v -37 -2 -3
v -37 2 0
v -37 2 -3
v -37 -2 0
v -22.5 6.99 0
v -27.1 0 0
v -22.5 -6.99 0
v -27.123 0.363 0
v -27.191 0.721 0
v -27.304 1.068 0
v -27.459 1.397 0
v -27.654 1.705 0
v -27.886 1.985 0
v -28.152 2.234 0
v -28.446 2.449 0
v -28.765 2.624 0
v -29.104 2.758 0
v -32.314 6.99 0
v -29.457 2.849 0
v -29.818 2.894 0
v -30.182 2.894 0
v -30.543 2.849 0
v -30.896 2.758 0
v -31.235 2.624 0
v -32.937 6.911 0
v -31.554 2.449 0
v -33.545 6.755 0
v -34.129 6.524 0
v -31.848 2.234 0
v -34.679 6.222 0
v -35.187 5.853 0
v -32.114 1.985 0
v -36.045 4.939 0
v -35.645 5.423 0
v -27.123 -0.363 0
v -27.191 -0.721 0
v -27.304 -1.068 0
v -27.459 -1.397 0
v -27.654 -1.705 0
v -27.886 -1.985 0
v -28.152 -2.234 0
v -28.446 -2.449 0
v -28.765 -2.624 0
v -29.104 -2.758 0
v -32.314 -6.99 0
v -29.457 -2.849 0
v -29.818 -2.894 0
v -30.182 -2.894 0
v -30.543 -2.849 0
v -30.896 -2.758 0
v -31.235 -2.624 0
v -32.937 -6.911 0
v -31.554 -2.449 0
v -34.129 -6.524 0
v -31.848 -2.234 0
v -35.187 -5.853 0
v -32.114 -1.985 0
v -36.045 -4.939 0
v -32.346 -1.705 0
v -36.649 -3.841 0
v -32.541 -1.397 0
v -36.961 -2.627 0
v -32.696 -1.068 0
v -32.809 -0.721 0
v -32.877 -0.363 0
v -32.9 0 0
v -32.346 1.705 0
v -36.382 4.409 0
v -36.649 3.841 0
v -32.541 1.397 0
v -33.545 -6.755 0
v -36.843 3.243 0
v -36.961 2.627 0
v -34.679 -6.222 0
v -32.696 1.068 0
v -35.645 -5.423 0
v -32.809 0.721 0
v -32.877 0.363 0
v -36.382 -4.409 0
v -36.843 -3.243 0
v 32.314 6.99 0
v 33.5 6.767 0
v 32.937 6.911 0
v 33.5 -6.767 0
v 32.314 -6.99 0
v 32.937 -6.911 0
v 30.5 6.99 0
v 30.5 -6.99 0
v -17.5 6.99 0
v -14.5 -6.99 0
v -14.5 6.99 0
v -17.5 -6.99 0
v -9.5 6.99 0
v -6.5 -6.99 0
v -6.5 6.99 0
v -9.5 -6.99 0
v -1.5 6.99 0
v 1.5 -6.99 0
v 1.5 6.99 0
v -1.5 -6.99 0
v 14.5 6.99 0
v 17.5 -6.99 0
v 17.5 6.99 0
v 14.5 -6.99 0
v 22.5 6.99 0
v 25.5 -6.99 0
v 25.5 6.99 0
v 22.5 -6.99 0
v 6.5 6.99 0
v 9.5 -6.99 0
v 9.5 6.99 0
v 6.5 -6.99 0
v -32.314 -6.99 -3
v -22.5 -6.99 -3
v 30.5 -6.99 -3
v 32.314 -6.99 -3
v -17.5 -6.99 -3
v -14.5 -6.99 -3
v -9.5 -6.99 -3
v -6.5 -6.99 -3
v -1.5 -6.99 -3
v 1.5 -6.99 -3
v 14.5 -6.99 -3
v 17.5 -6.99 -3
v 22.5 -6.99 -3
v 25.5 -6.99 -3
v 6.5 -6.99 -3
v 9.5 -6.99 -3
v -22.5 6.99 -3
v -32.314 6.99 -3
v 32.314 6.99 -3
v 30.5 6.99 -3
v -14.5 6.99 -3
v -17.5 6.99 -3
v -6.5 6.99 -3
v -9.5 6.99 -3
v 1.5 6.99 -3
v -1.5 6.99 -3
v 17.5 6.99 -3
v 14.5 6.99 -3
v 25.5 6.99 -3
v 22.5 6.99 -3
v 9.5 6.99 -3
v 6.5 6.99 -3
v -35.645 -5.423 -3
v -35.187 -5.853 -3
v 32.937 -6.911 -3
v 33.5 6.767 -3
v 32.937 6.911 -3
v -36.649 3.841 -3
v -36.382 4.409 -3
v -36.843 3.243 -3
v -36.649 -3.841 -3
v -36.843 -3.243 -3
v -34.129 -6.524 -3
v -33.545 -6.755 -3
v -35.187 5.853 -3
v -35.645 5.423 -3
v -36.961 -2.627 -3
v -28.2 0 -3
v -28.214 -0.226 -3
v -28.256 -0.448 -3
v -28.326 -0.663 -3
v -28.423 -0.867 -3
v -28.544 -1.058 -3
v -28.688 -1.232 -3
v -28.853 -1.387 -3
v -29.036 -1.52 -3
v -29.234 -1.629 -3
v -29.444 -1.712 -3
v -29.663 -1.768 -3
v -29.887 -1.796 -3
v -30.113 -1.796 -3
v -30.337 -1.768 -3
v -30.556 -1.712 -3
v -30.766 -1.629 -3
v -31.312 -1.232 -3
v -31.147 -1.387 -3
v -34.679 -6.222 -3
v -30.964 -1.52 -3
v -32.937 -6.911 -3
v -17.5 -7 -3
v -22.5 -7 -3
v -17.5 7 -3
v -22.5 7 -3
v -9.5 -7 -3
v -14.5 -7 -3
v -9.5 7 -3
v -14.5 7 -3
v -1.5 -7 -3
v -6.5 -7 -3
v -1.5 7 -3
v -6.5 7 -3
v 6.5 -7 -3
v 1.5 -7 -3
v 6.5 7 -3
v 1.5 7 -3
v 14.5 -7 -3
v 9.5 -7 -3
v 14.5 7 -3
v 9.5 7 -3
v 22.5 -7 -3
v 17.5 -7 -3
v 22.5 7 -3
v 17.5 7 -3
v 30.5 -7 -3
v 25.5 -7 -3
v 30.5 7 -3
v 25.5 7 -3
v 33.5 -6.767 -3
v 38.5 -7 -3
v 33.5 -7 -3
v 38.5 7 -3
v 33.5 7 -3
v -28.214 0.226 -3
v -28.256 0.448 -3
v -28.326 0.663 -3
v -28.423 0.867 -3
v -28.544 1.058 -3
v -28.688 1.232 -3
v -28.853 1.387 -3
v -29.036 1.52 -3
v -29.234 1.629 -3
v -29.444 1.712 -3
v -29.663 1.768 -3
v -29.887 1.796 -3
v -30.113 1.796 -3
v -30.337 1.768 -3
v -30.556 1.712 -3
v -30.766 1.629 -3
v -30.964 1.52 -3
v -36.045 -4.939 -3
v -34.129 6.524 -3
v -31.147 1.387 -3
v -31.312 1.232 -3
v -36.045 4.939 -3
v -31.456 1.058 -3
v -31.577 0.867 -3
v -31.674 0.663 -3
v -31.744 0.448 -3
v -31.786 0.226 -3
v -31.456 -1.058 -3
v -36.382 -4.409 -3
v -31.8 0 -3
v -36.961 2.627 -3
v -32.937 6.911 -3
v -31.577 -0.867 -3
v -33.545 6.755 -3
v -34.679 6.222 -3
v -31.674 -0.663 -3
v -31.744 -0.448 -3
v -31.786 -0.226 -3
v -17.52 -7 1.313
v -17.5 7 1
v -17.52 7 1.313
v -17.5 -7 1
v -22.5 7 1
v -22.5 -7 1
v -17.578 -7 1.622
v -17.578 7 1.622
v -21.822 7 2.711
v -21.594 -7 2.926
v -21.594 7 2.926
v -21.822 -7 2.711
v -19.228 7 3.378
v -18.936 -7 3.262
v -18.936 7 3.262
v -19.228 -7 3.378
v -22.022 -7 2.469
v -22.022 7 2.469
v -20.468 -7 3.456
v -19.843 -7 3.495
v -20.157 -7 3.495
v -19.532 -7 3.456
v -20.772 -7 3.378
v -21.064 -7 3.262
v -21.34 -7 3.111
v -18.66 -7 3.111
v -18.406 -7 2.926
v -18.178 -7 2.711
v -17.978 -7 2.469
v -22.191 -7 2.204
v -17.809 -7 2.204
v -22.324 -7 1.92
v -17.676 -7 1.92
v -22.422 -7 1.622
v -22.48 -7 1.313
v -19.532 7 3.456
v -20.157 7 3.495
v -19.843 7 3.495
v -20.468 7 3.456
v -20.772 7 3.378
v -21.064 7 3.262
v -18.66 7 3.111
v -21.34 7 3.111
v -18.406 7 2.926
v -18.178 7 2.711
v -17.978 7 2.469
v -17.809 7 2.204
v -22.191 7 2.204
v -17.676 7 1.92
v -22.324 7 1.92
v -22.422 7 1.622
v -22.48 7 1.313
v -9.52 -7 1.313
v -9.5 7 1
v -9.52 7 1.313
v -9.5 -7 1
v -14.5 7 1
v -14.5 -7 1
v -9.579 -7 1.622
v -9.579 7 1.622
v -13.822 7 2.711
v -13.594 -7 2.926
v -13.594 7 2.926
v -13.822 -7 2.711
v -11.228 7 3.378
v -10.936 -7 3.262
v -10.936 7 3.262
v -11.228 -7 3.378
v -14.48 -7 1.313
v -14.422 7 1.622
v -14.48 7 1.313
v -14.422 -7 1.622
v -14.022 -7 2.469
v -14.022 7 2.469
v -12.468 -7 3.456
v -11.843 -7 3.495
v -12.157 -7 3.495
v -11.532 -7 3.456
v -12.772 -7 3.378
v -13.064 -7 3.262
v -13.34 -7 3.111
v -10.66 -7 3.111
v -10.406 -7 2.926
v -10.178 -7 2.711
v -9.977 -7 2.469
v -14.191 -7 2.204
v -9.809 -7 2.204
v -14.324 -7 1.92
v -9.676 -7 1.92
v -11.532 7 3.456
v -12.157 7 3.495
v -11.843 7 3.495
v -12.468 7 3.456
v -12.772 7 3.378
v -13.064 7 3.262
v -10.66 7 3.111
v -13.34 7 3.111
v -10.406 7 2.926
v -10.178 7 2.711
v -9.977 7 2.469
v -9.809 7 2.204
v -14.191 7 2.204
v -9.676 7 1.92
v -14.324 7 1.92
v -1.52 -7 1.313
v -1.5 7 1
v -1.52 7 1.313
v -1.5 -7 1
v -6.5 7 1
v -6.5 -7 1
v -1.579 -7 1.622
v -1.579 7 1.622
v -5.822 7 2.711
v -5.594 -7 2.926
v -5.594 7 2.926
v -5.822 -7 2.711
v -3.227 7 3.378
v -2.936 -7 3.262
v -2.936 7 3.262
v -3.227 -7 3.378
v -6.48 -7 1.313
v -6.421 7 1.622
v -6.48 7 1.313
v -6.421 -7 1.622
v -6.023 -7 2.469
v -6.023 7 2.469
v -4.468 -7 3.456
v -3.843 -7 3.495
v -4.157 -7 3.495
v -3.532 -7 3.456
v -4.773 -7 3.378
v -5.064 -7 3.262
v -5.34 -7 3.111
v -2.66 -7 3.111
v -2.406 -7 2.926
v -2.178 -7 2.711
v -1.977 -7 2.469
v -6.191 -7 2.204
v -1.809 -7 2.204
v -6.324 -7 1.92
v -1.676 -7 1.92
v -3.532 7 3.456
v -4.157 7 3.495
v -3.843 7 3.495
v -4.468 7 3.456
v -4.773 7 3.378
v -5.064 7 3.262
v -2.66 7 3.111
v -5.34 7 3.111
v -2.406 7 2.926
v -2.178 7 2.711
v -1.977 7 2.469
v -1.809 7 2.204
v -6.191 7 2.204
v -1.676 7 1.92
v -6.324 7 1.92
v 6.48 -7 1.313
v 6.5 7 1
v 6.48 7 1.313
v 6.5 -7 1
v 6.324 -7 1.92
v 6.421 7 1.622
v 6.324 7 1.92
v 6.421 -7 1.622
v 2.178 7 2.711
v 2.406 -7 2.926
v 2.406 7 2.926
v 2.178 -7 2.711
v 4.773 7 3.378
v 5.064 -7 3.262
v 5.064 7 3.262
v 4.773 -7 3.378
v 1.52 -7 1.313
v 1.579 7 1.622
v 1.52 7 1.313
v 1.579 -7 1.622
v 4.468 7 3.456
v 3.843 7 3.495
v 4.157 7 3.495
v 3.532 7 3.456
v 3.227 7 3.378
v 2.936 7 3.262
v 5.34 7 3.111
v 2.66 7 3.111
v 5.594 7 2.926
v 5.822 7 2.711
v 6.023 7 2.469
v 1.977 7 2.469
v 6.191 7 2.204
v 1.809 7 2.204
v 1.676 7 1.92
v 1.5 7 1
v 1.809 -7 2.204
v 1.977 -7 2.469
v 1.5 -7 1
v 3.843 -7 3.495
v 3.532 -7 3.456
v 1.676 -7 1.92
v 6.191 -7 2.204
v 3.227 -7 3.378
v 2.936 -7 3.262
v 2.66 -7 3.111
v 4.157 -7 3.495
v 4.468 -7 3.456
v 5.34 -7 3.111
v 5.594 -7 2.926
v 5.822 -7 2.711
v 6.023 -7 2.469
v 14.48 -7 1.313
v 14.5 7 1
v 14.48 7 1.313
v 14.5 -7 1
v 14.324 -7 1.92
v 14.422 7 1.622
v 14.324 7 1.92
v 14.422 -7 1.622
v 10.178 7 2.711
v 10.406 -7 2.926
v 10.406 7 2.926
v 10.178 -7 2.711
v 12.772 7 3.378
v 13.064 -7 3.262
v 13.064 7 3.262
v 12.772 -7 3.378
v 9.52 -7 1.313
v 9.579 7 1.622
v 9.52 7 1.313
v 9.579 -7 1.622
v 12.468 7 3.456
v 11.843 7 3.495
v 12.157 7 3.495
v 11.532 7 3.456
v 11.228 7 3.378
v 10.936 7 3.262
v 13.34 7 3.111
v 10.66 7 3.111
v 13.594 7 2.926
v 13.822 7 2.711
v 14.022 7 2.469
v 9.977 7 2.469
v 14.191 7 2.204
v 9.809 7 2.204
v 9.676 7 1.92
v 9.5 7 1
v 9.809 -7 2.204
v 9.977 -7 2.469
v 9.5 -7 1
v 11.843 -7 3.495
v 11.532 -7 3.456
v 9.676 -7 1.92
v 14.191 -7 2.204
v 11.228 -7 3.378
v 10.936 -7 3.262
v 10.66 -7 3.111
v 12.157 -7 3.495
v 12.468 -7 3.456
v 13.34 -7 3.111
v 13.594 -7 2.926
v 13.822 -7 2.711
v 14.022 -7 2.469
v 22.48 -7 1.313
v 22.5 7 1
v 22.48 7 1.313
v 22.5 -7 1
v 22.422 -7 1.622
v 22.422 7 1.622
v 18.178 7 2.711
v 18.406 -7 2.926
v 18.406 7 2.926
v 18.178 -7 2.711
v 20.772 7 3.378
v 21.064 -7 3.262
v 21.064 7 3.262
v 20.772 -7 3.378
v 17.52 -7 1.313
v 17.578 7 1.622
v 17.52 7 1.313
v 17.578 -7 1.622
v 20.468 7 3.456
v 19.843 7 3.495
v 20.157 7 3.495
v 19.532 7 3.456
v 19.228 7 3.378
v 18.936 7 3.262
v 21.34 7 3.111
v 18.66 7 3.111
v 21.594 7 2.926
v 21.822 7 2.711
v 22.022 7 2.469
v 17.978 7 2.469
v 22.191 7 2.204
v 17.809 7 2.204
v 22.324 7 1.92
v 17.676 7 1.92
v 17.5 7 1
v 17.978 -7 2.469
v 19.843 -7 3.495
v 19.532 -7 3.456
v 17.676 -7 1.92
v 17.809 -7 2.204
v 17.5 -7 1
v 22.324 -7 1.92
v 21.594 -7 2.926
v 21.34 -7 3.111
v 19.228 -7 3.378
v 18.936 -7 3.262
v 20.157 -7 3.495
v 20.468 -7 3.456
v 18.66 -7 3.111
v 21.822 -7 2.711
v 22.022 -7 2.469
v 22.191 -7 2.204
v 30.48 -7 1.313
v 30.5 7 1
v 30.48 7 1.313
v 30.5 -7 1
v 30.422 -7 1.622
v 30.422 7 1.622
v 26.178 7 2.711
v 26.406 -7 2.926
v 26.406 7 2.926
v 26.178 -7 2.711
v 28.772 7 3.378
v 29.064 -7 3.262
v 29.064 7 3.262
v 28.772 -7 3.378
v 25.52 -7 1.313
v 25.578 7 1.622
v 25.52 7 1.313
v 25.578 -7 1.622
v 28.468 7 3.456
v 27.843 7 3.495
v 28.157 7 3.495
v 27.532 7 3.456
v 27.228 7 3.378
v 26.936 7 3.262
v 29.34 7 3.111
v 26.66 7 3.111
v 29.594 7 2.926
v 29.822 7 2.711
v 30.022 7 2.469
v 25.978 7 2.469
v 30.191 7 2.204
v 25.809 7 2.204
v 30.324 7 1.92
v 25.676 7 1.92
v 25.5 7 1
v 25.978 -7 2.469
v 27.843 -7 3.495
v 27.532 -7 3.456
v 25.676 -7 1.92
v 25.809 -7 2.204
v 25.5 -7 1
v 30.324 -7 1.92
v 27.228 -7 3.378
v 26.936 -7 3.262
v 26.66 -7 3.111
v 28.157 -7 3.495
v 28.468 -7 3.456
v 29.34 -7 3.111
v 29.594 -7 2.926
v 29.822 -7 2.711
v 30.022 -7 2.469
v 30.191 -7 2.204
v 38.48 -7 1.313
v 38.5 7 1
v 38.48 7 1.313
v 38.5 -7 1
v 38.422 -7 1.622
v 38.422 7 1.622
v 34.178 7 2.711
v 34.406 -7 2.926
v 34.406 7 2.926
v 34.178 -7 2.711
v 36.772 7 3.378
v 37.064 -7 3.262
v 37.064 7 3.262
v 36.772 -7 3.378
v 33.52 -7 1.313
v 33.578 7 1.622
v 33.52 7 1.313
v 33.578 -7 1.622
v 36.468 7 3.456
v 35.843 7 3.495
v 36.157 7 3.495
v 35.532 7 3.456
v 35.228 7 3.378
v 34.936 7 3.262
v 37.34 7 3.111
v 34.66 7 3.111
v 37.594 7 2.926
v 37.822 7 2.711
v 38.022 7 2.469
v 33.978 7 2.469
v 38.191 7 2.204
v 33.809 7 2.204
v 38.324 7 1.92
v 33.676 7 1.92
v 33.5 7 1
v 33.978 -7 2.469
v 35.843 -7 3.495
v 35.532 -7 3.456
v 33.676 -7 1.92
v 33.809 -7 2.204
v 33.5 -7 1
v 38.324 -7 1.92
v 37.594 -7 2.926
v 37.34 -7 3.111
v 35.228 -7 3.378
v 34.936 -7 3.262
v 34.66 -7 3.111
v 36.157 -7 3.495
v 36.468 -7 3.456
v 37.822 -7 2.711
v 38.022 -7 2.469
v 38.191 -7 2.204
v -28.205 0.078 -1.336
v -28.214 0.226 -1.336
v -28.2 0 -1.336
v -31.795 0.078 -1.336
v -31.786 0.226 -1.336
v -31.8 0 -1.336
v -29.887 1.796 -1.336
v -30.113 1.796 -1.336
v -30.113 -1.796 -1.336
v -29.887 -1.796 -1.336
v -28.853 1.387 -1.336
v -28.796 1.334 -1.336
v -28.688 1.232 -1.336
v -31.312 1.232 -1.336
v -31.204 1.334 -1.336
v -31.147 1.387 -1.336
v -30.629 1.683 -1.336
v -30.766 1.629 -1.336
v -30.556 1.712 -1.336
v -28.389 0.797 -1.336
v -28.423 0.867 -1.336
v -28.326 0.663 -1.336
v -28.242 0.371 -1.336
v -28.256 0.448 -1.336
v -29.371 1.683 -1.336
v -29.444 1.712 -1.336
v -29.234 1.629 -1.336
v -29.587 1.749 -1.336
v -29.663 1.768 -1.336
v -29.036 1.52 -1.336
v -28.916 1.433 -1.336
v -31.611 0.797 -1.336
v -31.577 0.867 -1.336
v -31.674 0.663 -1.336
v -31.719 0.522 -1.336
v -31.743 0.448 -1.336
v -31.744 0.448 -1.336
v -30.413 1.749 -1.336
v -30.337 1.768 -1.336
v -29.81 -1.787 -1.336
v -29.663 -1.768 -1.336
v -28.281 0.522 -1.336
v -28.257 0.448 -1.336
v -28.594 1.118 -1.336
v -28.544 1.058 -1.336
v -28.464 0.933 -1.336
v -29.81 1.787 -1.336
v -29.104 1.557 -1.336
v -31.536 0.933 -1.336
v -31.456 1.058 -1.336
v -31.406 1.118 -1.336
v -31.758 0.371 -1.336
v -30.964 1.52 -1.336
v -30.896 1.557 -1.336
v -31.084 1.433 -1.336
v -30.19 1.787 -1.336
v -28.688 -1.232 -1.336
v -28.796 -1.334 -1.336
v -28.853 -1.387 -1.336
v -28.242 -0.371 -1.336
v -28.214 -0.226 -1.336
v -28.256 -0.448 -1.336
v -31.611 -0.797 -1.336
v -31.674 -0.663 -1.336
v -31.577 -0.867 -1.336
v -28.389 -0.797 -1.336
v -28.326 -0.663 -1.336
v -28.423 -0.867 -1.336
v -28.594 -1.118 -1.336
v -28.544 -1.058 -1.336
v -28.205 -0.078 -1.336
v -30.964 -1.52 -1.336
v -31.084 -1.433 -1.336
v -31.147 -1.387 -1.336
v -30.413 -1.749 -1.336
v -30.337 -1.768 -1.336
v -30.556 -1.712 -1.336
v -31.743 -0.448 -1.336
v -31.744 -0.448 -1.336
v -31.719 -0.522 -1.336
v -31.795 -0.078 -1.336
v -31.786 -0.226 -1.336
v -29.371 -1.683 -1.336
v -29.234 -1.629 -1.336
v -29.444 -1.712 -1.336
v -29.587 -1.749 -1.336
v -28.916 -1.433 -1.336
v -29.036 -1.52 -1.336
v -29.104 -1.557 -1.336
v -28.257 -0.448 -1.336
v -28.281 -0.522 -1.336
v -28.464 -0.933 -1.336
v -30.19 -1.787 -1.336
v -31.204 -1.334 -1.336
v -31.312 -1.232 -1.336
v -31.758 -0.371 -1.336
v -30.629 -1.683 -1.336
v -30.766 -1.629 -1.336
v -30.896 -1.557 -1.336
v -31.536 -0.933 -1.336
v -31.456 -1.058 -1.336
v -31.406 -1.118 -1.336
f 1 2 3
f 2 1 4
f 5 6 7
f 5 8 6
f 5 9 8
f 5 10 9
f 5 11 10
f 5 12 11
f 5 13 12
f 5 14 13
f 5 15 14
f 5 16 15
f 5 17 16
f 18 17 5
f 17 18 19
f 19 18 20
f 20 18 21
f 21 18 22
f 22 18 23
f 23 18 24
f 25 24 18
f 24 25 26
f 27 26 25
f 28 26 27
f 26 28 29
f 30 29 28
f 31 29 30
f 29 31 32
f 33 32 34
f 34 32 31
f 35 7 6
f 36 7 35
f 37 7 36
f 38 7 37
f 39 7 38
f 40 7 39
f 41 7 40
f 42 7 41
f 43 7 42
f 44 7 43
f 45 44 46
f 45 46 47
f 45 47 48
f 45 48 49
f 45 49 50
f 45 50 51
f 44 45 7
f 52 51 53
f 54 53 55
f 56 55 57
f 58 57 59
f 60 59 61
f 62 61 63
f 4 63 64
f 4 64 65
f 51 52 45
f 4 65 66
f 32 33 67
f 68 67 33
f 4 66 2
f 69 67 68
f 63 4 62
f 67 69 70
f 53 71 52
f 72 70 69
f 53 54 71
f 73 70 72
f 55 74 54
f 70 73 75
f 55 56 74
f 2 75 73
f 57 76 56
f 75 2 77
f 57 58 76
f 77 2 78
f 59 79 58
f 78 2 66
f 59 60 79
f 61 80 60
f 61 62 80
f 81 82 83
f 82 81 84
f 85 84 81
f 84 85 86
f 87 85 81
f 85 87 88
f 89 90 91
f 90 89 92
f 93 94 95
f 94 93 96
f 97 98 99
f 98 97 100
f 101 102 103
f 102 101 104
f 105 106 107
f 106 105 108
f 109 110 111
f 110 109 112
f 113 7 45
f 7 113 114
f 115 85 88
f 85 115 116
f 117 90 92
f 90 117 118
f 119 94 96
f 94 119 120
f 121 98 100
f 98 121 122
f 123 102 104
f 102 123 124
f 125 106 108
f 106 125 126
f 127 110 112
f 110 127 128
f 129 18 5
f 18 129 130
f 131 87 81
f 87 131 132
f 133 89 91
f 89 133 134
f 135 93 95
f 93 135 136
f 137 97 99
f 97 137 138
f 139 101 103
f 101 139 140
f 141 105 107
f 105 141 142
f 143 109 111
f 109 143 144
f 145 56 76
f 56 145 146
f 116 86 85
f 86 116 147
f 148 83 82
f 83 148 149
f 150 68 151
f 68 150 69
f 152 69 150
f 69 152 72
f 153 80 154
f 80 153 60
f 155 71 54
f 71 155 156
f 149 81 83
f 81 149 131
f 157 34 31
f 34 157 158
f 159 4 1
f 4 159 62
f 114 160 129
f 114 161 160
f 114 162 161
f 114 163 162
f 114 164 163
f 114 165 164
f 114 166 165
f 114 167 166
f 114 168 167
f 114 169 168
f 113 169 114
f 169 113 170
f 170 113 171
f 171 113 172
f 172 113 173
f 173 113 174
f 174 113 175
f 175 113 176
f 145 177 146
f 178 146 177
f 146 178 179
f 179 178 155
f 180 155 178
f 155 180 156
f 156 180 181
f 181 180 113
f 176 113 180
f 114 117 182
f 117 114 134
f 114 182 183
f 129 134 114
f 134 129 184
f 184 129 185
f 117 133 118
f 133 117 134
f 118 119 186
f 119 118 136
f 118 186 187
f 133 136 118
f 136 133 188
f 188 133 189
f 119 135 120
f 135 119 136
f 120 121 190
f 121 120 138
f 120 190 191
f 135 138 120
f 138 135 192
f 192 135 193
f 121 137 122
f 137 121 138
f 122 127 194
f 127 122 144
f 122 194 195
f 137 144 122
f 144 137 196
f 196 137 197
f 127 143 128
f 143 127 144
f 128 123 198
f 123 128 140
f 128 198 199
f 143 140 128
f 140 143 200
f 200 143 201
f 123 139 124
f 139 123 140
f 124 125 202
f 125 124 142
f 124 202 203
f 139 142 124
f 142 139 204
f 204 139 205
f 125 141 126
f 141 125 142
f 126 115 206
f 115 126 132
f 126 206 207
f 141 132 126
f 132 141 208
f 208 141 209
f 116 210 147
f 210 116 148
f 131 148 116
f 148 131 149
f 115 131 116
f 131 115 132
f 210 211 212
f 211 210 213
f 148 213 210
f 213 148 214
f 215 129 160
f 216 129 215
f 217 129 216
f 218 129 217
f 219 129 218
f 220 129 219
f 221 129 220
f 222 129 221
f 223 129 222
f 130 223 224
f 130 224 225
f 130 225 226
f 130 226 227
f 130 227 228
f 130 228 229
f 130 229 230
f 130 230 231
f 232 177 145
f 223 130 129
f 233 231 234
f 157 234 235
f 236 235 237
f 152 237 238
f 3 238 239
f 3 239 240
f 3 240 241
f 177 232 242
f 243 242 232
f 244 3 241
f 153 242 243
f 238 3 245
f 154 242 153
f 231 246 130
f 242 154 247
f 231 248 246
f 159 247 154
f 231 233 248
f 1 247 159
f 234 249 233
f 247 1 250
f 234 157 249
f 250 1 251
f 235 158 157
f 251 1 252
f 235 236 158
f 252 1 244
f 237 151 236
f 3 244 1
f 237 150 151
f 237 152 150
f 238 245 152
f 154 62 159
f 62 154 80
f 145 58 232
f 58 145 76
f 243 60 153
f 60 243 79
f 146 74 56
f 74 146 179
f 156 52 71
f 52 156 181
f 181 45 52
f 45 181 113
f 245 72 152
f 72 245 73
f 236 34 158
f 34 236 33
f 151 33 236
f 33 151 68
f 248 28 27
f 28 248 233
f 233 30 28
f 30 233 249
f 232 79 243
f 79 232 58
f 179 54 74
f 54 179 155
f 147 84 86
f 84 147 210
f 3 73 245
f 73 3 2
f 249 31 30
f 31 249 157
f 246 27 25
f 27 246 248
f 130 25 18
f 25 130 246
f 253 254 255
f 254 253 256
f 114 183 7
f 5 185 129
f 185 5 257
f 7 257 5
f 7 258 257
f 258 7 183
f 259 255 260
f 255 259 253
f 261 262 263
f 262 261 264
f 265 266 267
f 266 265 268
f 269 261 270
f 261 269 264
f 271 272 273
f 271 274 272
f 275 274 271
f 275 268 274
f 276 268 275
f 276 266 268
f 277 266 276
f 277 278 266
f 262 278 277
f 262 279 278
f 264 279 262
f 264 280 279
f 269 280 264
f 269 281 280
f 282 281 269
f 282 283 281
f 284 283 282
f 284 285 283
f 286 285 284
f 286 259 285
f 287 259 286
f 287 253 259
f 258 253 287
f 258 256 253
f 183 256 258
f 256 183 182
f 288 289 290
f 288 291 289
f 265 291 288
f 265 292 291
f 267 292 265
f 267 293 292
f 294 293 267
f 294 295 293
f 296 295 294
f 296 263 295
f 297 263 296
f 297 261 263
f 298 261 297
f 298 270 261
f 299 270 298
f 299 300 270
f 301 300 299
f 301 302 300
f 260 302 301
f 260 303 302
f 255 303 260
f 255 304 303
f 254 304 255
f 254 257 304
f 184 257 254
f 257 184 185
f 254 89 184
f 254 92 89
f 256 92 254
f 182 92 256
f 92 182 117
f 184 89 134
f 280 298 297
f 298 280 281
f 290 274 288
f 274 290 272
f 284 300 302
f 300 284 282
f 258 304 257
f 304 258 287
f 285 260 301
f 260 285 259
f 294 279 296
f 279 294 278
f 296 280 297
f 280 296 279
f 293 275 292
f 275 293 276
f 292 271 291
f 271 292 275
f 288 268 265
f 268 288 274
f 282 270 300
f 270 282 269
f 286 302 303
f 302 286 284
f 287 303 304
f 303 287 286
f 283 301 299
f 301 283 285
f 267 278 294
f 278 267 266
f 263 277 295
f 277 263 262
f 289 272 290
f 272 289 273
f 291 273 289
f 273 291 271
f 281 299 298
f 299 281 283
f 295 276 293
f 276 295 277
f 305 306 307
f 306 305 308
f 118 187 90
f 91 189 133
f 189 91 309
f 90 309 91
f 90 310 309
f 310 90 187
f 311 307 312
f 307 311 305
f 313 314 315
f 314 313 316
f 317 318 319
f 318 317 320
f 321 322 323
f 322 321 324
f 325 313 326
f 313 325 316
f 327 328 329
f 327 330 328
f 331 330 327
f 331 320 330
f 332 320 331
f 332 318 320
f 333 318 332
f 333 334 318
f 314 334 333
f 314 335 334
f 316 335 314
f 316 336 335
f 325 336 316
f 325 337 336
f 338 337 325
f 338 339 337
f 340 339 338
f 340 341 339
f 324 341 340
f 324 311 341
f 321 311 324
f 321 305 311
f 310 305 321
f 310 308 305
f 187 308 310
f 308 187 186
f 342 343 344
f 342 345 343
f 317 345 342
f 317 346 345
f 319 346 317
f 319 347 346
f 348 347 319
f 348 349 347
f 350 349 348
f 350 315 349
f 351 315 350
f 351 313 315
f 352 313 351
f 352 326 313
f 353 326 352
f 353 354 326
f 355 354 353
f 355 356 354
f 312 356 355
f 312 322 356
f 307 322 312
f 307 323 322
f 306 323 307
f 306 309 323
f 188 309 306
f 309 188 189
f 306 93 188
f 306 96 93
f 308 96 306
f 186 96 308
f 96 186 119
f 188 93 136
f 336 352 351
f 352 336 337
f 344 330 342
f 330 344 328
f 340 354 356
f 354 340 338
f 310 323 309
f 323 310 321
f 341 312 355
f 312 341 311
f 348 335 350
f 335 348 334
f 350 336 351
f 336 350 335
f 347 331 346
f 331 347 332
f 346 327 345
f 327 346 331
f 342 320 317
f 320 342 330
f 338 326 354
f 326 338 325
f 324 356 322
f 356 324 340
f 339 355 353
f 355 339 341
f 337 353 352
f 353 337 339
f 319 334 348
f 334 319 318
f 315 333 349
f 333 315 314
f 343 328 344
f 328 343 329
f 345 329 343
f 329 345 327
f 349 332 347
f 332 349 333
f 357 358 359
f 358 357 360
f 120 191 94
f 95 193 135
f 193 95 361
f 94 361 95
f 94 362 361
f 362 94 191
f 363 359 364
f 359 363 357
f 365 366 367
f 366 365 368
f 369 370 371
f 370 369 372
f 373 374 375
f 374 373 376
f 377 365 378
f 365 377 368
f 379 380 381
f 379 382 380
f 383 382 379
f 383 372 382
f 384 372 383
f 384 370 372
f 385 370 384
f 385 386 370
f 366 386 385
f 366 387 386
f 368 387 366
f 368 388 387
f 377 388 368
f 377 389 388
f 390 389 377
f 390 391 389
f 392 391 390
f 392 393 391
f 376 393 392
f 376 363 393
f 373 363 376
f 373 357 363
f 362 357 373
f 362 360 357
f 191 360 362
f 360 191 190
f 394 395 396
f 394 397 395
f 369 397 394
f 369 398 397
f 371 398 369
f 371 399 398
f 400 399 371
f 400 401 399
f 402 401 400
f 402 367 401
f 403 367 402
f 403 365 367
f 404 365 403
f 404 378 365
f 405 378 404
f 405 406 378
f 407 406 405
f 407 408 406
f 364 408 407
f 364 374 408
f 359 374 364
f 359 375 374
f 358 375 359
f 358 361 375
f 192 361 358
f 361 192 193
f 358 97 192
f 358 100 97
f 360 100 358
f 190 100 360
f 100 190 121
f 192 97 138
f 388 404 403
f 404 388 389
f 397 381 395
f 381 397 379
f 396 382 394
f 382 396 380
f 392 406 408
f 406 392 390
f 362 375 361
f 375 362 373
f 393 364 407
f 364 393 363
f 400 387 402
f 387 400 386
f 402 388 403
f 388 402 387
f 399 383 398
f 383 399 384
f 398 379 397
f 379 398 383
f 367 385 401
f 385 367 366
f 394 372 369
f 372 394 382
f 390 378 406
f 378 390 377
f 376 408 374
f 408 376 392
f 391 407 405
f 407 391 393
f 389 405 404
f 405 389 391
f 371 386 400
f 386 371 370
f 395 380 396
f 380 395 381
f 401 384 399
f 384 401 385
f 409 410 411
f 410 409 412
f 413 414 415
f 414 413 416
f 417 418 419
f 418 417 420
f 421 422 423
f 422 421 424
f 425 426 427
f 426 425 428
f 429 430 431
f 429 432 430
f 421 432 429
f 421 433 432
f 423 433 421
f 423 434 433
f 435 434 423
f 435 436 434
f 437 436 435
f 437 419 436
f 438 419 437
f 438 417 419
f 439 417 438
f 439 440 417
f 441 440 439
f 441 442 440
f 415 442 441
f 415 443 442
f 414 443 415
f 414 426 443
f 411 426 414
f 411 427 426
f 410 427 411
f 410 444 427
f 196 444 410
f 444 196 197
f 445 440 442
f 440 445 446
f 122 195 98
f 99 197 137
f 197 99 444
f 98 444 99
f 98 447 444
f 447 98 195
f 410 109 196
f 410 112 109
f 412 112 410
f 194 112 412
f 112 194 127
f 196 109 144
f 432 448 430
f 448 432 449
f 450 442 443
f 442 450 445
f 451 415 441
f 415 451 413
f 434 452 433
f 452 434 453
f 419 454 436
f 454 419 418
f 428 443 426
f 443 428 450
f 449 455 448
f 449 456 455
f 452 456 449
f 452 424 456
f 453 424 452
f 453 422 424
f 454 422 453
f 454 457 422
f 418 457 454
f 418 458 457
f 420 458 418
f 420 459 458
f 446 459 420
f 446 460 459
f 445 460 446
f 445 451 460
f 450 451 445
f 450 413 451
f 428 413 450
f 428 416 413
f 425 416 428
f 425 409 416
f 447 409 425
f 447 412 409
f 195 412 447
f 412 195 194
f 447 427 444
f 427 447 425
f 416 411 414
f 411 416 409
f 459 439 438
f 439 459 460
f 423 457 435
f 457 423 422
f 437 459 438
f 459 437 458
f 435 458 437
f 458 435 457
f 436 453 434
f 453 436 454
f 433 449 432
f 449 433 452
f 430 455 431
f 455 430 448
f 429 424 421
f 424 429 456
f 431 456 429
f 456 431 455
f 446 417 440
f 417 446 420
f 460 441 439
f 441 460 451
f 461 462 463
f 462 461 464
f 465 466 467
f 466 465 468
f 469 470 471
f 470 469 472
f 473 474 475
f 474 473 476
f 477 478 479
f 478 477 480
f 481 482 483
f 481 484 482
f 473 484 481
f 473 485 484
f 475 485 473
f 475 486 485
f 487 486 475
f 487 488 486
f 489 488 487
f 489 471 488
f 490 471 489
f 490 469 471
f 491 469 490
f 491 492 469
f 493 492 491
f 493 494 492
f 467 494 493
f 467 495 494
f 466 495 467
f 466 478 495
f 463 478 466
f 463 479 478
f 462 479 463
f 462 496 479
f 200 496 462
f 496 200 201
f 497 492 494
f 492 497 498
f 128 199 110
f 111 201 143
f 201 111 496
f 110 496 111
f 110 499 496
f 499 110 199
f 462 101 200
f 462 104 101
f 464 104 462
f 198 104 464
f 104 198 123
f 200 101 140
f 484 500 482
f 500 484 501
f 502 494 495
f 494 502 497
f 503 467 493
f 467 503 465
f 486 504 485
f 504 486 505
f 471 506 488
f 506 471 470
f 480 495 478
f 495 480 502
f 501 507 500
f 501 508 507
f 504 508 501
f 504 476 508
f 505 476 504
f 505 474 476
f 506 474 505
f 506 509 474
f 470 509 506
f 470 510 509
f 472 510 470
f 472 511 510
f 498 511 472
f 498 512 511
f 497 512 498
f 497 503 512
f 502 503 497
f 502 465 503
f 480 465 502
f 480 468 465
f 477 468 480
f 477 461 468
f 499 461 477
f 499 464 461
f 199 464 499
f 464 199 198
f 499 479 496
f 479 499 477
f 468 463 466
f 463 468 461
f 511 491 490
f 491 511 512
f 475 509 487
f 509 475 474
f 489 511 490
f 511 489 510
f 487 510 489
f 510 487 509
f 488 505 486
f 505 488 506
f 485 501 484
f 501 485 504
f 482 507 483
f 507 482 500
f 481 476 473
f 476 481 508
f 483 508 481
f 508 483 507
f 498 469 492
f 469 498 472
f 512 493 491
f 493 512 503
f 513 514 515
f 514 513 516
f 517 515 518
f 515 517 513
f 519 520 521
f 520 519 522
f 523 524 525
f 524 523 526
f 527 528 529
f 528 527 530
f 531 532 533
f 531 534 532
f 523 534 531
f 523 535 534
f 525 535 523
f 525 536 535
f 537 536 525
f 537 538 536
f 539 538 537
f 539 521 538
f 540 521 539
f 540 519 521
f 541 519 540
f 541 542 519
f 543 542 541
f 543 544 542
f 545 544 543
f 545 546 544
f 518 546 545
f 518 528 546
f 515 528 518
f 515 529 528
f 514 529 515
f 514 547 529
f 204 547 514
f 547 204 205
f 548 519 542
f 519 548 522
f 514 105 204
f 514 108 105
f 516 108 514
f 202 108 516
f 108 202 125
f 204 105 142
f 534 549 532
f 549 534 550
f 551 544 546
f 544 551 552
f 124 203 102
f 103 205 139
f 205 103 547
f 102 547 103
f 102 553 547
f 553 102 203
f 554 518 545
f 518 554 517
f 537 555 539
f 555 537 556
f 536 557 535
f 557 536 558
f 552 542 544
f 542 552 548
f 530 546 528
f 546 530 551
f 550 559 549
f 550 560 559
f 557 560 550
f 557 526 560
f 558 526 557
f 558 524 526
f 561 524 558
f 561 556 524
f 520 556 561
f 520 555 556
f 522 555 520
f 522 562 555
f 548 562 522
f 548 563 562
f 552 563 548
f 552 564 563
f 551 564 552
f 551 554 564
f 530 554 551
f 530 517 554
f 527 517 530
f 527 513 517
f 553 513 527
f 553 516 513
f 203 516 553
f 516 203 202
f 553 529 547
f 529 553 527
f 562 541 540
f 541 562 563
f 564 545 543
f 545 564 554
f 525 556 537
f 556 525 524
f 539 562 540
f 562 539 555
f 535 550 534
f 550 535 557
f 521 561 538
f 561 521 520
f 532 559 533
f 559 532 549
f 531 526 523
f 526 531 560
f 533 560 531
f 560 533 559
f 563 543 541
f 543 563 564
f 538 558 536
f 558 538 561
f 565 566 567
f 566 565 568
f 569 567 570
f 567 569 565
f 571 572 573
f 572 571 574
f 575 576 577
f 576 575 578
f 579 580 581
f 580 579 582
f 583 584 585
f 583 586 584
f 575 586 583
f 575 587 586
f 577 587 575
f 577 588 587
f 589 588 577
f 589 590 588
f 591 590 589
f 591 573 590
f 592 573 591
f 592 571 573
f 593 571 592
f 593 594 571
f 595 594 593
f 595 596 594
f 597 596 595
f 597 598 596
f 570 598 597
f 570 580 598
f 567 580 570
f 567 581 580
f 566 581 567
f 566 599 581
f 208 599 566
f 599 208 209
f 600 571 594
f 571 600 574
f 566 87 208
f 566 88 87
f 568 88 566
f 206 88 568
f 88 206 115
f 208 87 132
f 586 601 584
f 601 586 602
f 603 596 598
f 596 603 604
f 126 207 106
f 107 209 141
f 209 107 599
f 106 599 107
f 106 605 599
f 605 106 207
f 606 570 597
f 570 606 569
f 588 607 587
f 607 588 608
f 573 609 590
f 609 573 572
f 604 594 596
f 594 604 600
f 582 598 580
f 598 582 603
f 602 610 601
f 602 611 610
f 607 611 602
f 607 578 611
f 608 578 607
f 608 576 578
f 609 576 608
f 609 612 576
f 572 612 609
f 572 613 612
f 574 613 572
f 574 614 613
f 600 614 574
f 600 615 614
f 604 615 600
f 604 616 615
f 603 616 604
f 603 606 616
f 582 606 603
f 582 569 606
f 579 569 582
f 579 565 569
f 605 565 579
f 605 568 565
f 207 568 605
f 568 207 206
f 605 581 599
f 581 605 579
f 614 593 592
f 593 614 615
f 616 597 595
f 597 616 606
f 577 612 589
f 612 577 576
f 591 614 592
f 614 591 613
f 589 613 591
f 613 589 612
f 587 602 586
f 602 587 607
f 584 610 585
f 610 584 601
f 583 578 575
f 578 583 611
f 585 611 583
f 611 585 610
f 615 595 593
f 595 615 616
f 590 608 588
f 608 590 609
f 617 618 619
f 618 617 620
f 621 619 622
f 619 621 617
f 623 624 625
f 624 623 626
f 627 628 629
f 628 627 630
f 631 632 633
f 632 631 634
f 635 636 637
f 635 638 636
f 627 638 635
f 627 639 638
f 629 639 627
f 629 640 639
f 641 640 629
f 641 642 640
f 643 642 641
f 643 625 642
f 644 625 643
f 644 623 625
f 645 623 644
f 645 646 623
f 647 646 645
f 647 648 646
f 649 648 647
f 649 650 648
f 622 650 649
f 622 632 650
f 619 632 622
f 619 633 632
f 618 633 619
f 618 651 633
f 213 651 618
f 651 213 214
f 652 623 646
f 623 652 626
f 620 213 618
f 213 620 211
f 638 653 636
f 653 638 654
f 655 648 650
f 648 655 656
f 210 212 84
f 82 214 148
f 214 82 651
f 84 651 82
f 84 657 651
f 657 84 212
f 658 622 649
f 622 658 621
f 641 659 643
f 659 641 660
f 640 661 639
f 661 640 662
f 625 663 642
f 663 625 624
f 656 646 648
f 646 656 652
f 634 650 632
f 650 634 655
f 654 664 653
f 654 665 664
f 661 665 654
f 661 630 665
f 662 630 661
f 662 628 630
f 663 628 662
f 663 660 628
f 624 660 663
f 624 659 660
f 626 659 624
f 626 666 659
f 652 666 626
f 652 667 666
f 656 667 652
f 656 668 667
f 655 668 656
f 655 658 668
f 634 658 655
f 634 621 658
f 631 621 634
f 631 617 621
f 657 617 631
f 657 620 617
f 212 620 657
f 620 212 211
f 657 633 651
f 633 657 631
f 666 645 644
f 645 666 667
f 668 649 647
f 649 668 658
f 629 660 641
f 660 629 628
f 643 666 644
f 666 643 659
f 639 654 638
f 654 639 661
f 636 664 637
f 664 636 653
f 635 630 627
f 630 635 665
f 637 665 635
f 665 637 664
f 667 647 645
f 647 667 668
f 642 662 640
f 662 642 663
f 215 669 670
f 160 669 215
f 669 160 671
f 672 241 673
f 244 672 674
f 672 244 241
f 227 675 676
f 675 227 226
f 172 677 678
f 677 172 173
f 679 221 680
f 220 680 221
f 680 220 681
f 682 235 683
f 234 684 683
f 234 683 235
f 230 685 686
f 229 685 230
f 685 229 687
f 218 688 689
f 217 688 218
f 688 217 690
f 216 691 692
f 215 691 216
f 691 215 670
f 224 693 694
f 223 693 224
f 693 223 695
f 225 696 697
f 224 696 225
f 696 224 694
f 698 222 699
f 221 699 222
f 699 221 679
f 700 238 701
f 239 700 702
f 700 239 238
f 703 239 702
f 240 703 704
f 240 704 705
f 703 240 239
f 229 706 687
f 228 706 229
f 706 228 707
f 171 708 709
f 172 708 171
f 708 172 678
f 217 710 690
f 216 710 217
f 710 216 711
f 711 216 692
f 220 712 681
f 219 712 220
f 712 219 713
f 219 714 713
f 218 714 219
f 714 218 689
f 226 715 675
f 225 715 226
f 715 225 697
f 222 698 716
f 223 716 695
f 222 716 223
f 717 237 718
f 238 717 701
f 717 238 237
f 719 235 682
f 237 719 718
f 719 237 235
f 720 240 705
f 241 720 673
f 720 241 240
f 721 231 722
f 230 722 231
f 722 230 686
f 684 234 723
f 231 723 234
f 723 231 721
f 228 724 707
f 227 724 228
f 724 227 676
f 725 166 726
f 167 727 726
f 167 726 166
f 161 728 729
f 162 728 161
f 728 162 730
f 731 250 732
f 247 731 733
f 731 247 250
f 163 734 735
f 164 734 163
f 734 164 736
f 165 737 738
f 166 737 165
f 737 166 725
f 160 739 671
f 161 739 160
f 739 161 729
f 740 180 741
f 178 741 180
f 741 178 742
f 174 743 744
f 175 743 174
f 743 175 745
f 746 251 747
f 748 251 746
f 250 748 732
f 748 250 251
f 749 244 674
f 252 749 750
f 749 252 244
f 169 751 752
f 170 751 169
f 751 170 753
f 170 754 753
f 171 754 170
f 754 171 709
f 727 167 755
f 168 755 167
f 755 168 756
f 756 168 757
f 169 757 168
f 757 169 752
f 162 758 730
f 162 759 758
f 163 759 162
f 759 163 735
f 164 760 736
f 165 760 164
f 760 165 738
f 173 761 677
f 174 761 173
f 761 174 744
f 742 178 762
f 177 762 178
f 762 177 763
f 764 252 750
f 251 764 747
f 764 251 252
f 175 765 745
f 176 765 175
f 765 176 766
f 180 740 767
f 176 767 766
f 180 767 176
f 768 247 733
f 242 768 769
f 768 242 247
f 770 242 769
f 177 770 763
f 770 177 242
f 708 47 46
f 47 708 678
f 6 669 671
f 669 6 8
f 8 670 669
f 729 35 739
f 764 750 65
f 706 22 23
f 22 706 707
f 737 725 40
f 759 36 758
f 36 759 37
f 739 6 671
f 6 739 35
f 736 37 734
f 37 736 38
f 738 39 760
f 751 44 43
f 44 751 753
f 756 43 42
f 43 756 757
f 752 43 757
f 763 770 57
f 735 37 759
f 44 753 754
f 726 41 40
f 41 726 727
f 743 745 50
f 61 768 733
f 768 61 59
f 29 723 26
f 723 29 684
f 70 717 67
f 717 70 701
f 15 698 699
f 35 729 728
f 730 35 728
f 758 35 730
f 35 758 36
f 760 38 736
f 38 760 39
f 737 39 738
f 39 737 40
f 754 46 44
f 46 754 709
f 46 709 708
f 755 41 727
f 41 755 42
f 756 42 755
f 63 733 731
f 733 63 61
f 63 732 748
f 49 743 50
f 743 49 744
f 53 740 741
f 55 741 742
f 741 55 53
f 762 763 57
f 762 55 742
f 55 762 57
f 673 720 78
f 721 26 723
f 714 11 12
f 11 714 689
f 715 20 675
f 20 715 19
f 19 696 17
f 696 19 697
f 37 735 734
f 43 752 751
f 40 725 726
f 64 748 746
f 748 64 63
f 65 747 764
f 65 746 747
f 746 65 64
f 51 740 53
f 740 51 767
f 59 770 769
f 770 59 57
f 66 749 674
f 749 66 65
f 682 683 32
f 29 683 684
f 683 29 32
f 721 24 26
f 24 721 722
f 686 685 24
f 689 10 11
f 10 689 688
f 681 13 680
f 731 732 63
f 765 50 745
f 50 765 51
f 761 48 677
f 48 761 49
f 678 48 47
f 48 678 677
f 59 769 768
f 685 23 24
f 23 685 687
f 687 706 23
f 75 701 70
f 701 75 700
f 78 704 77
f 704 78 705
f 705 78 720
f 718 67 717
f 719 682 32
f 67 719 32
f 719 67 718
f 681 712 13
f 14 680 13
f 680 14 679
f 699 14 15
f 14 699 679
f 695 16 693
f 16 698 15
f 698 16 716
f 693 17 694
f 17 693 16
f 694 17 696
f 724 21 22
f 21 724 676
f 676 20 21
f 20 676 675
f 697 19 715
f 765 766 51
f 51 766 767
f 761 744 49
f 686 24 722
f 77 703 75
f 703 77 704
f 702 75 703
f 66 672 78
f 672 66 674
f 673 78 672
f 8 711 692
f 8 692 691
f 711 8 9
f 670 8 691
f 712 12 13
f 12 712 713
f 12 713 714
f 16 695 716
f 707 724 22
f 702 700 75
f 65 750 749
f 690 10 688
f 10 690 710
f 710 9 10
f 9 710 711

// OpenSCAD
$fn = 50;


difference() {
	union() {
		translate(v = [0, 0, -3]) {
			hull() {
				translate(v = [-32.0000000000, 2.0000000000, 0]) {
					cylinder(h = 3, r = 5);
				}
				translate(v = [32.0000000000, 2.0000000000, 0]) {
					cylinder(h = 3, r = 5);
				}
				translate(v = [-32.0000000000, -2.0000000000, 0]) {
					cylinder(h = 3, r = 5);
				}
				translate(v = [32.0000000000, -2.0000000000, 0]) {
					cylinder(h = 3, r = 5);
				}
			}
		}
		translate(v = [-20.0000000000, 7.0000000000, -1.5000000000]) {
			rotate(a = [90, 0, 0]) {
				hull() {
					translate(v = [-0.0000000000, 2.5000000000, 0]) {
						cylinder(h = 14, r = 2.5000000000);
					}
					translate(v = [0.0000000000, 2.5000000000, 0]) {
						cylinder(h = 14, r = 2.5000000000);
					}
					translate(v = [-0.0000000000, -2.5000000000, 0]) {
						cylinder(h = 14, r = 2.5000000000);
					}
					translate(v = [0.0000000000, -2.5000000000, 0]) {
						cylinder(h = 14, r = 2.5000000000);
					}
				}
			}
		}
		translate(v = [-12.0000000000, 7.0000000000, -1.5000000000]) {
			rotate(a = [90, 0, 0]) {
				hull() {
					translate(v = [-0.0000000000, 2.5000000000, 0]) {
						cylinder(h = 14, r = 2.5000000000);
					}
					translate(v = [0.0000000000, 2.5000000000, 0]) {
						cylinder(h = 14, r = 2.5000000000);
					}
					translate(v = [-0.0000000000, -2.5000000000, 0]) {
						cylinder(h = 14, r = 2.5000000000);
					}
					translate(v = [0.0000000000, -2.5000000000, 0]) {
						cylinder(h = 14, r = 2.5000000000);
					}
				}
			}
		}
		translate(v = [-4.0000000000, 7.0000000000, -1.5000000000]) {
			rotate(a = [90, 0, 0]) {
				hull() {
					translate(v = [-0.0000000000, 2.5000000000, 0]) {
						cylinder(h = 14, r = 2.5000000000);
					}
					translate(v = [0.0000000000, 2.5000000000, 0]) {
						cylinder(h = 14, r = 2.5000000000);
					}
					translate(v = [-0.0000000000, -2.5000000000, 0]) {
						cylinder(h = 14, r = 2.5000000000);
					}
					translate(v = [0.0000000000, -2.5000000000, 0]) {
						cylinder(h = 14, r = 2.5000000000);
					}
				}
			}
		}
		translate(v = [4.0000000000, 7.0000000000, -1.5000000000]) {
			rotate(a = [90, 0, 0]) {
				hull() {
					translate(v = [-0.0000000000, 2.5000000000, 0]) {
						cylinder(h = 14, r = 2.5000000000);
					}
					translate(v = [0.0000000000, 2.5000000000, 0]) {
						cylinder(h = 14, r = 2.5000000000);
					}
					translate(v = [-0.0000000000, -2.5000000000, 0]) {
						cylinder(h = 14, r = 2.5000000000);
					}
					translate(v = [0.0000000000, -2.5000000000, 0]) {
						cylinder(h = 14, r = 2.5000000000);
					}
				}
			}
		}
		translate(v = [12.0000000000, 7.0000000000, -1.5000000000]) {
			rotate(a = [90, 0, 0]) {
				hull() {
					translate(v = [-0.0000000000, 2.5000000000, 0]) {
						cylinder(h = 14, r = 2.5000000000);
					}
					translate(v = [0.0000000000, 2.5000000000, 0]) {
						cylinder(h = 14, r = 2.5000000000);
					}
					translate(v = [-0.0000000000, -2.5000000000, 0]) {
						cylinder(h = 14, r = 2.5000000000);
					}
					translate(v = [0.0000000000, -2.5000000000, 0]) {
						cylinder(h = 14, r = 2.5000000000);
					}
				}
			}
		}
		translate(v = [20.0000000000, 7.0000000000, -1.5000000000]) {
			rotate(a = [90, 0, 0]) {
				hull() {
					translate(v = [-0.0000000000, 2.5000000000, 0]) {
						cylinder(h = 14, r = 2.5000000000);
					}
					translate(v = [0.0000000000, 2.5000000000, 0]) {
						cylinder(h = 14, r = 2.5000000000);
					}
					translate(v = [-0.0000000000, -2.5000000000, 0]) {
						cylinder(h = 14, r = 2.5000000000);
					}
					translate(v = [0.0000000000, -2.5000000000, 0]) {
						cylinder(h = 14, r = 2.5000000000);
					}
				}
			}
		}
		translate(v = [28.0000000000, 7.0000000000, -1.5000000000]) {
			rotate(a = [90, 0, 0]) {
				hull() {
					translate(v = [-0.0000000000, 2.5000000000, 0]) {
						cylinder(h = 14, r = 2.5000000000);
					}
					translate(v = [0.0000000000, 2.5000000000, 0]) {
						cylinder(h = 14, r = 2.5000000000);
					}
					translate(v = [-0.0000000000, -2.5000000000, 0]) {
						cylinder(h = 14, r = 2.5000000000);
					}
					translate(v = [0.0000000000, -2.5000000000, 0]) {
						cylinder(h = 14, r = 2.5000000000);
					}
				}
			}
		}
		translate(v = [36.0000000000, 7.0000000000, -1.5000000000]) {
			rotate(a = [90, 0, 0]) {
				hull() {
					translate(v = [-0.0000000000, 2.5000000000, 0]) {
						cylinder(h = 14, r = 2.5000000000);
					}
					translate(v = [0.0000000000, 2.5000000000, 0]) {
						cylinder(h = 14, r = 2.5000000000);
					}
					translate(v = [-0.0000000000, -2.5000000000, 0]) {
						cylinder(h = 14, r = 2.5000000000);
					}
					translate(v = [0.0000000000, -2.5000000000, 0]) {
						cylinder(h = 14, r = 2.5000000000);
					}
				}
			}
		}
	}
	union() {
		translate(v = [-30.0000000000, 0.0000000000, 0]) {
			rotate(a = [0, 0, 0]) {
				difference() {
					union() {
						translate(v = [0, 0, -3.0000000000]) {
							cylinder(h = 3, r = 1.5000000000);
						}
						translate(v = [0, 0, -3.0000000000]) {
							cylinder(h = 3, r = 1.8000000000);
						}
						translate(v = [0, 0, -1.7000000000]) {
							cylinder(h = 1.7000000000, r1 = 1.5000000000, r2 = 2.9000000000);
						}
						translate(v = [0, 0, -3.0000000000]) {
							cylinder(h = 3, r = 1.5000000000);
						}
					}
					union();
				}
			}
		}
		translate(v = [-250.0000000000, -250.0000000000, -503]) {
			cube(size = [500, 500, 500]);
		}
		translate(v = [-250.0000000000, -250.0000000000, -503]) {
			cube(size = [500, 500, 500]);
		}
		translate(v = [-250.0000000000, -250.0000000000, -503]) {
			cube(size = [500, 500, 500]);
		}
		translate(v = [-30.0000000000, 0.0000000000, -100.0000000000]) {
			cylinder(h = 200, r = 1.5000000000);
		}
		translate(v = [-30.0000000000, 0.0000000000, -100.0000000000]) {
			cylinder(h = 200, r = 1.5000000000);
		}
		translate(v = [-30.0000000000, 0.0000000000, -100.0000000000]) {
			cylinder(h = 200, r = 1.5000000000);
		}
		translate(v = [-30.0000000000, 0.0000000000, -100.0000000000]) {
			cylinder(h = 200, r = 1.5000000000);
		}
	}
}
